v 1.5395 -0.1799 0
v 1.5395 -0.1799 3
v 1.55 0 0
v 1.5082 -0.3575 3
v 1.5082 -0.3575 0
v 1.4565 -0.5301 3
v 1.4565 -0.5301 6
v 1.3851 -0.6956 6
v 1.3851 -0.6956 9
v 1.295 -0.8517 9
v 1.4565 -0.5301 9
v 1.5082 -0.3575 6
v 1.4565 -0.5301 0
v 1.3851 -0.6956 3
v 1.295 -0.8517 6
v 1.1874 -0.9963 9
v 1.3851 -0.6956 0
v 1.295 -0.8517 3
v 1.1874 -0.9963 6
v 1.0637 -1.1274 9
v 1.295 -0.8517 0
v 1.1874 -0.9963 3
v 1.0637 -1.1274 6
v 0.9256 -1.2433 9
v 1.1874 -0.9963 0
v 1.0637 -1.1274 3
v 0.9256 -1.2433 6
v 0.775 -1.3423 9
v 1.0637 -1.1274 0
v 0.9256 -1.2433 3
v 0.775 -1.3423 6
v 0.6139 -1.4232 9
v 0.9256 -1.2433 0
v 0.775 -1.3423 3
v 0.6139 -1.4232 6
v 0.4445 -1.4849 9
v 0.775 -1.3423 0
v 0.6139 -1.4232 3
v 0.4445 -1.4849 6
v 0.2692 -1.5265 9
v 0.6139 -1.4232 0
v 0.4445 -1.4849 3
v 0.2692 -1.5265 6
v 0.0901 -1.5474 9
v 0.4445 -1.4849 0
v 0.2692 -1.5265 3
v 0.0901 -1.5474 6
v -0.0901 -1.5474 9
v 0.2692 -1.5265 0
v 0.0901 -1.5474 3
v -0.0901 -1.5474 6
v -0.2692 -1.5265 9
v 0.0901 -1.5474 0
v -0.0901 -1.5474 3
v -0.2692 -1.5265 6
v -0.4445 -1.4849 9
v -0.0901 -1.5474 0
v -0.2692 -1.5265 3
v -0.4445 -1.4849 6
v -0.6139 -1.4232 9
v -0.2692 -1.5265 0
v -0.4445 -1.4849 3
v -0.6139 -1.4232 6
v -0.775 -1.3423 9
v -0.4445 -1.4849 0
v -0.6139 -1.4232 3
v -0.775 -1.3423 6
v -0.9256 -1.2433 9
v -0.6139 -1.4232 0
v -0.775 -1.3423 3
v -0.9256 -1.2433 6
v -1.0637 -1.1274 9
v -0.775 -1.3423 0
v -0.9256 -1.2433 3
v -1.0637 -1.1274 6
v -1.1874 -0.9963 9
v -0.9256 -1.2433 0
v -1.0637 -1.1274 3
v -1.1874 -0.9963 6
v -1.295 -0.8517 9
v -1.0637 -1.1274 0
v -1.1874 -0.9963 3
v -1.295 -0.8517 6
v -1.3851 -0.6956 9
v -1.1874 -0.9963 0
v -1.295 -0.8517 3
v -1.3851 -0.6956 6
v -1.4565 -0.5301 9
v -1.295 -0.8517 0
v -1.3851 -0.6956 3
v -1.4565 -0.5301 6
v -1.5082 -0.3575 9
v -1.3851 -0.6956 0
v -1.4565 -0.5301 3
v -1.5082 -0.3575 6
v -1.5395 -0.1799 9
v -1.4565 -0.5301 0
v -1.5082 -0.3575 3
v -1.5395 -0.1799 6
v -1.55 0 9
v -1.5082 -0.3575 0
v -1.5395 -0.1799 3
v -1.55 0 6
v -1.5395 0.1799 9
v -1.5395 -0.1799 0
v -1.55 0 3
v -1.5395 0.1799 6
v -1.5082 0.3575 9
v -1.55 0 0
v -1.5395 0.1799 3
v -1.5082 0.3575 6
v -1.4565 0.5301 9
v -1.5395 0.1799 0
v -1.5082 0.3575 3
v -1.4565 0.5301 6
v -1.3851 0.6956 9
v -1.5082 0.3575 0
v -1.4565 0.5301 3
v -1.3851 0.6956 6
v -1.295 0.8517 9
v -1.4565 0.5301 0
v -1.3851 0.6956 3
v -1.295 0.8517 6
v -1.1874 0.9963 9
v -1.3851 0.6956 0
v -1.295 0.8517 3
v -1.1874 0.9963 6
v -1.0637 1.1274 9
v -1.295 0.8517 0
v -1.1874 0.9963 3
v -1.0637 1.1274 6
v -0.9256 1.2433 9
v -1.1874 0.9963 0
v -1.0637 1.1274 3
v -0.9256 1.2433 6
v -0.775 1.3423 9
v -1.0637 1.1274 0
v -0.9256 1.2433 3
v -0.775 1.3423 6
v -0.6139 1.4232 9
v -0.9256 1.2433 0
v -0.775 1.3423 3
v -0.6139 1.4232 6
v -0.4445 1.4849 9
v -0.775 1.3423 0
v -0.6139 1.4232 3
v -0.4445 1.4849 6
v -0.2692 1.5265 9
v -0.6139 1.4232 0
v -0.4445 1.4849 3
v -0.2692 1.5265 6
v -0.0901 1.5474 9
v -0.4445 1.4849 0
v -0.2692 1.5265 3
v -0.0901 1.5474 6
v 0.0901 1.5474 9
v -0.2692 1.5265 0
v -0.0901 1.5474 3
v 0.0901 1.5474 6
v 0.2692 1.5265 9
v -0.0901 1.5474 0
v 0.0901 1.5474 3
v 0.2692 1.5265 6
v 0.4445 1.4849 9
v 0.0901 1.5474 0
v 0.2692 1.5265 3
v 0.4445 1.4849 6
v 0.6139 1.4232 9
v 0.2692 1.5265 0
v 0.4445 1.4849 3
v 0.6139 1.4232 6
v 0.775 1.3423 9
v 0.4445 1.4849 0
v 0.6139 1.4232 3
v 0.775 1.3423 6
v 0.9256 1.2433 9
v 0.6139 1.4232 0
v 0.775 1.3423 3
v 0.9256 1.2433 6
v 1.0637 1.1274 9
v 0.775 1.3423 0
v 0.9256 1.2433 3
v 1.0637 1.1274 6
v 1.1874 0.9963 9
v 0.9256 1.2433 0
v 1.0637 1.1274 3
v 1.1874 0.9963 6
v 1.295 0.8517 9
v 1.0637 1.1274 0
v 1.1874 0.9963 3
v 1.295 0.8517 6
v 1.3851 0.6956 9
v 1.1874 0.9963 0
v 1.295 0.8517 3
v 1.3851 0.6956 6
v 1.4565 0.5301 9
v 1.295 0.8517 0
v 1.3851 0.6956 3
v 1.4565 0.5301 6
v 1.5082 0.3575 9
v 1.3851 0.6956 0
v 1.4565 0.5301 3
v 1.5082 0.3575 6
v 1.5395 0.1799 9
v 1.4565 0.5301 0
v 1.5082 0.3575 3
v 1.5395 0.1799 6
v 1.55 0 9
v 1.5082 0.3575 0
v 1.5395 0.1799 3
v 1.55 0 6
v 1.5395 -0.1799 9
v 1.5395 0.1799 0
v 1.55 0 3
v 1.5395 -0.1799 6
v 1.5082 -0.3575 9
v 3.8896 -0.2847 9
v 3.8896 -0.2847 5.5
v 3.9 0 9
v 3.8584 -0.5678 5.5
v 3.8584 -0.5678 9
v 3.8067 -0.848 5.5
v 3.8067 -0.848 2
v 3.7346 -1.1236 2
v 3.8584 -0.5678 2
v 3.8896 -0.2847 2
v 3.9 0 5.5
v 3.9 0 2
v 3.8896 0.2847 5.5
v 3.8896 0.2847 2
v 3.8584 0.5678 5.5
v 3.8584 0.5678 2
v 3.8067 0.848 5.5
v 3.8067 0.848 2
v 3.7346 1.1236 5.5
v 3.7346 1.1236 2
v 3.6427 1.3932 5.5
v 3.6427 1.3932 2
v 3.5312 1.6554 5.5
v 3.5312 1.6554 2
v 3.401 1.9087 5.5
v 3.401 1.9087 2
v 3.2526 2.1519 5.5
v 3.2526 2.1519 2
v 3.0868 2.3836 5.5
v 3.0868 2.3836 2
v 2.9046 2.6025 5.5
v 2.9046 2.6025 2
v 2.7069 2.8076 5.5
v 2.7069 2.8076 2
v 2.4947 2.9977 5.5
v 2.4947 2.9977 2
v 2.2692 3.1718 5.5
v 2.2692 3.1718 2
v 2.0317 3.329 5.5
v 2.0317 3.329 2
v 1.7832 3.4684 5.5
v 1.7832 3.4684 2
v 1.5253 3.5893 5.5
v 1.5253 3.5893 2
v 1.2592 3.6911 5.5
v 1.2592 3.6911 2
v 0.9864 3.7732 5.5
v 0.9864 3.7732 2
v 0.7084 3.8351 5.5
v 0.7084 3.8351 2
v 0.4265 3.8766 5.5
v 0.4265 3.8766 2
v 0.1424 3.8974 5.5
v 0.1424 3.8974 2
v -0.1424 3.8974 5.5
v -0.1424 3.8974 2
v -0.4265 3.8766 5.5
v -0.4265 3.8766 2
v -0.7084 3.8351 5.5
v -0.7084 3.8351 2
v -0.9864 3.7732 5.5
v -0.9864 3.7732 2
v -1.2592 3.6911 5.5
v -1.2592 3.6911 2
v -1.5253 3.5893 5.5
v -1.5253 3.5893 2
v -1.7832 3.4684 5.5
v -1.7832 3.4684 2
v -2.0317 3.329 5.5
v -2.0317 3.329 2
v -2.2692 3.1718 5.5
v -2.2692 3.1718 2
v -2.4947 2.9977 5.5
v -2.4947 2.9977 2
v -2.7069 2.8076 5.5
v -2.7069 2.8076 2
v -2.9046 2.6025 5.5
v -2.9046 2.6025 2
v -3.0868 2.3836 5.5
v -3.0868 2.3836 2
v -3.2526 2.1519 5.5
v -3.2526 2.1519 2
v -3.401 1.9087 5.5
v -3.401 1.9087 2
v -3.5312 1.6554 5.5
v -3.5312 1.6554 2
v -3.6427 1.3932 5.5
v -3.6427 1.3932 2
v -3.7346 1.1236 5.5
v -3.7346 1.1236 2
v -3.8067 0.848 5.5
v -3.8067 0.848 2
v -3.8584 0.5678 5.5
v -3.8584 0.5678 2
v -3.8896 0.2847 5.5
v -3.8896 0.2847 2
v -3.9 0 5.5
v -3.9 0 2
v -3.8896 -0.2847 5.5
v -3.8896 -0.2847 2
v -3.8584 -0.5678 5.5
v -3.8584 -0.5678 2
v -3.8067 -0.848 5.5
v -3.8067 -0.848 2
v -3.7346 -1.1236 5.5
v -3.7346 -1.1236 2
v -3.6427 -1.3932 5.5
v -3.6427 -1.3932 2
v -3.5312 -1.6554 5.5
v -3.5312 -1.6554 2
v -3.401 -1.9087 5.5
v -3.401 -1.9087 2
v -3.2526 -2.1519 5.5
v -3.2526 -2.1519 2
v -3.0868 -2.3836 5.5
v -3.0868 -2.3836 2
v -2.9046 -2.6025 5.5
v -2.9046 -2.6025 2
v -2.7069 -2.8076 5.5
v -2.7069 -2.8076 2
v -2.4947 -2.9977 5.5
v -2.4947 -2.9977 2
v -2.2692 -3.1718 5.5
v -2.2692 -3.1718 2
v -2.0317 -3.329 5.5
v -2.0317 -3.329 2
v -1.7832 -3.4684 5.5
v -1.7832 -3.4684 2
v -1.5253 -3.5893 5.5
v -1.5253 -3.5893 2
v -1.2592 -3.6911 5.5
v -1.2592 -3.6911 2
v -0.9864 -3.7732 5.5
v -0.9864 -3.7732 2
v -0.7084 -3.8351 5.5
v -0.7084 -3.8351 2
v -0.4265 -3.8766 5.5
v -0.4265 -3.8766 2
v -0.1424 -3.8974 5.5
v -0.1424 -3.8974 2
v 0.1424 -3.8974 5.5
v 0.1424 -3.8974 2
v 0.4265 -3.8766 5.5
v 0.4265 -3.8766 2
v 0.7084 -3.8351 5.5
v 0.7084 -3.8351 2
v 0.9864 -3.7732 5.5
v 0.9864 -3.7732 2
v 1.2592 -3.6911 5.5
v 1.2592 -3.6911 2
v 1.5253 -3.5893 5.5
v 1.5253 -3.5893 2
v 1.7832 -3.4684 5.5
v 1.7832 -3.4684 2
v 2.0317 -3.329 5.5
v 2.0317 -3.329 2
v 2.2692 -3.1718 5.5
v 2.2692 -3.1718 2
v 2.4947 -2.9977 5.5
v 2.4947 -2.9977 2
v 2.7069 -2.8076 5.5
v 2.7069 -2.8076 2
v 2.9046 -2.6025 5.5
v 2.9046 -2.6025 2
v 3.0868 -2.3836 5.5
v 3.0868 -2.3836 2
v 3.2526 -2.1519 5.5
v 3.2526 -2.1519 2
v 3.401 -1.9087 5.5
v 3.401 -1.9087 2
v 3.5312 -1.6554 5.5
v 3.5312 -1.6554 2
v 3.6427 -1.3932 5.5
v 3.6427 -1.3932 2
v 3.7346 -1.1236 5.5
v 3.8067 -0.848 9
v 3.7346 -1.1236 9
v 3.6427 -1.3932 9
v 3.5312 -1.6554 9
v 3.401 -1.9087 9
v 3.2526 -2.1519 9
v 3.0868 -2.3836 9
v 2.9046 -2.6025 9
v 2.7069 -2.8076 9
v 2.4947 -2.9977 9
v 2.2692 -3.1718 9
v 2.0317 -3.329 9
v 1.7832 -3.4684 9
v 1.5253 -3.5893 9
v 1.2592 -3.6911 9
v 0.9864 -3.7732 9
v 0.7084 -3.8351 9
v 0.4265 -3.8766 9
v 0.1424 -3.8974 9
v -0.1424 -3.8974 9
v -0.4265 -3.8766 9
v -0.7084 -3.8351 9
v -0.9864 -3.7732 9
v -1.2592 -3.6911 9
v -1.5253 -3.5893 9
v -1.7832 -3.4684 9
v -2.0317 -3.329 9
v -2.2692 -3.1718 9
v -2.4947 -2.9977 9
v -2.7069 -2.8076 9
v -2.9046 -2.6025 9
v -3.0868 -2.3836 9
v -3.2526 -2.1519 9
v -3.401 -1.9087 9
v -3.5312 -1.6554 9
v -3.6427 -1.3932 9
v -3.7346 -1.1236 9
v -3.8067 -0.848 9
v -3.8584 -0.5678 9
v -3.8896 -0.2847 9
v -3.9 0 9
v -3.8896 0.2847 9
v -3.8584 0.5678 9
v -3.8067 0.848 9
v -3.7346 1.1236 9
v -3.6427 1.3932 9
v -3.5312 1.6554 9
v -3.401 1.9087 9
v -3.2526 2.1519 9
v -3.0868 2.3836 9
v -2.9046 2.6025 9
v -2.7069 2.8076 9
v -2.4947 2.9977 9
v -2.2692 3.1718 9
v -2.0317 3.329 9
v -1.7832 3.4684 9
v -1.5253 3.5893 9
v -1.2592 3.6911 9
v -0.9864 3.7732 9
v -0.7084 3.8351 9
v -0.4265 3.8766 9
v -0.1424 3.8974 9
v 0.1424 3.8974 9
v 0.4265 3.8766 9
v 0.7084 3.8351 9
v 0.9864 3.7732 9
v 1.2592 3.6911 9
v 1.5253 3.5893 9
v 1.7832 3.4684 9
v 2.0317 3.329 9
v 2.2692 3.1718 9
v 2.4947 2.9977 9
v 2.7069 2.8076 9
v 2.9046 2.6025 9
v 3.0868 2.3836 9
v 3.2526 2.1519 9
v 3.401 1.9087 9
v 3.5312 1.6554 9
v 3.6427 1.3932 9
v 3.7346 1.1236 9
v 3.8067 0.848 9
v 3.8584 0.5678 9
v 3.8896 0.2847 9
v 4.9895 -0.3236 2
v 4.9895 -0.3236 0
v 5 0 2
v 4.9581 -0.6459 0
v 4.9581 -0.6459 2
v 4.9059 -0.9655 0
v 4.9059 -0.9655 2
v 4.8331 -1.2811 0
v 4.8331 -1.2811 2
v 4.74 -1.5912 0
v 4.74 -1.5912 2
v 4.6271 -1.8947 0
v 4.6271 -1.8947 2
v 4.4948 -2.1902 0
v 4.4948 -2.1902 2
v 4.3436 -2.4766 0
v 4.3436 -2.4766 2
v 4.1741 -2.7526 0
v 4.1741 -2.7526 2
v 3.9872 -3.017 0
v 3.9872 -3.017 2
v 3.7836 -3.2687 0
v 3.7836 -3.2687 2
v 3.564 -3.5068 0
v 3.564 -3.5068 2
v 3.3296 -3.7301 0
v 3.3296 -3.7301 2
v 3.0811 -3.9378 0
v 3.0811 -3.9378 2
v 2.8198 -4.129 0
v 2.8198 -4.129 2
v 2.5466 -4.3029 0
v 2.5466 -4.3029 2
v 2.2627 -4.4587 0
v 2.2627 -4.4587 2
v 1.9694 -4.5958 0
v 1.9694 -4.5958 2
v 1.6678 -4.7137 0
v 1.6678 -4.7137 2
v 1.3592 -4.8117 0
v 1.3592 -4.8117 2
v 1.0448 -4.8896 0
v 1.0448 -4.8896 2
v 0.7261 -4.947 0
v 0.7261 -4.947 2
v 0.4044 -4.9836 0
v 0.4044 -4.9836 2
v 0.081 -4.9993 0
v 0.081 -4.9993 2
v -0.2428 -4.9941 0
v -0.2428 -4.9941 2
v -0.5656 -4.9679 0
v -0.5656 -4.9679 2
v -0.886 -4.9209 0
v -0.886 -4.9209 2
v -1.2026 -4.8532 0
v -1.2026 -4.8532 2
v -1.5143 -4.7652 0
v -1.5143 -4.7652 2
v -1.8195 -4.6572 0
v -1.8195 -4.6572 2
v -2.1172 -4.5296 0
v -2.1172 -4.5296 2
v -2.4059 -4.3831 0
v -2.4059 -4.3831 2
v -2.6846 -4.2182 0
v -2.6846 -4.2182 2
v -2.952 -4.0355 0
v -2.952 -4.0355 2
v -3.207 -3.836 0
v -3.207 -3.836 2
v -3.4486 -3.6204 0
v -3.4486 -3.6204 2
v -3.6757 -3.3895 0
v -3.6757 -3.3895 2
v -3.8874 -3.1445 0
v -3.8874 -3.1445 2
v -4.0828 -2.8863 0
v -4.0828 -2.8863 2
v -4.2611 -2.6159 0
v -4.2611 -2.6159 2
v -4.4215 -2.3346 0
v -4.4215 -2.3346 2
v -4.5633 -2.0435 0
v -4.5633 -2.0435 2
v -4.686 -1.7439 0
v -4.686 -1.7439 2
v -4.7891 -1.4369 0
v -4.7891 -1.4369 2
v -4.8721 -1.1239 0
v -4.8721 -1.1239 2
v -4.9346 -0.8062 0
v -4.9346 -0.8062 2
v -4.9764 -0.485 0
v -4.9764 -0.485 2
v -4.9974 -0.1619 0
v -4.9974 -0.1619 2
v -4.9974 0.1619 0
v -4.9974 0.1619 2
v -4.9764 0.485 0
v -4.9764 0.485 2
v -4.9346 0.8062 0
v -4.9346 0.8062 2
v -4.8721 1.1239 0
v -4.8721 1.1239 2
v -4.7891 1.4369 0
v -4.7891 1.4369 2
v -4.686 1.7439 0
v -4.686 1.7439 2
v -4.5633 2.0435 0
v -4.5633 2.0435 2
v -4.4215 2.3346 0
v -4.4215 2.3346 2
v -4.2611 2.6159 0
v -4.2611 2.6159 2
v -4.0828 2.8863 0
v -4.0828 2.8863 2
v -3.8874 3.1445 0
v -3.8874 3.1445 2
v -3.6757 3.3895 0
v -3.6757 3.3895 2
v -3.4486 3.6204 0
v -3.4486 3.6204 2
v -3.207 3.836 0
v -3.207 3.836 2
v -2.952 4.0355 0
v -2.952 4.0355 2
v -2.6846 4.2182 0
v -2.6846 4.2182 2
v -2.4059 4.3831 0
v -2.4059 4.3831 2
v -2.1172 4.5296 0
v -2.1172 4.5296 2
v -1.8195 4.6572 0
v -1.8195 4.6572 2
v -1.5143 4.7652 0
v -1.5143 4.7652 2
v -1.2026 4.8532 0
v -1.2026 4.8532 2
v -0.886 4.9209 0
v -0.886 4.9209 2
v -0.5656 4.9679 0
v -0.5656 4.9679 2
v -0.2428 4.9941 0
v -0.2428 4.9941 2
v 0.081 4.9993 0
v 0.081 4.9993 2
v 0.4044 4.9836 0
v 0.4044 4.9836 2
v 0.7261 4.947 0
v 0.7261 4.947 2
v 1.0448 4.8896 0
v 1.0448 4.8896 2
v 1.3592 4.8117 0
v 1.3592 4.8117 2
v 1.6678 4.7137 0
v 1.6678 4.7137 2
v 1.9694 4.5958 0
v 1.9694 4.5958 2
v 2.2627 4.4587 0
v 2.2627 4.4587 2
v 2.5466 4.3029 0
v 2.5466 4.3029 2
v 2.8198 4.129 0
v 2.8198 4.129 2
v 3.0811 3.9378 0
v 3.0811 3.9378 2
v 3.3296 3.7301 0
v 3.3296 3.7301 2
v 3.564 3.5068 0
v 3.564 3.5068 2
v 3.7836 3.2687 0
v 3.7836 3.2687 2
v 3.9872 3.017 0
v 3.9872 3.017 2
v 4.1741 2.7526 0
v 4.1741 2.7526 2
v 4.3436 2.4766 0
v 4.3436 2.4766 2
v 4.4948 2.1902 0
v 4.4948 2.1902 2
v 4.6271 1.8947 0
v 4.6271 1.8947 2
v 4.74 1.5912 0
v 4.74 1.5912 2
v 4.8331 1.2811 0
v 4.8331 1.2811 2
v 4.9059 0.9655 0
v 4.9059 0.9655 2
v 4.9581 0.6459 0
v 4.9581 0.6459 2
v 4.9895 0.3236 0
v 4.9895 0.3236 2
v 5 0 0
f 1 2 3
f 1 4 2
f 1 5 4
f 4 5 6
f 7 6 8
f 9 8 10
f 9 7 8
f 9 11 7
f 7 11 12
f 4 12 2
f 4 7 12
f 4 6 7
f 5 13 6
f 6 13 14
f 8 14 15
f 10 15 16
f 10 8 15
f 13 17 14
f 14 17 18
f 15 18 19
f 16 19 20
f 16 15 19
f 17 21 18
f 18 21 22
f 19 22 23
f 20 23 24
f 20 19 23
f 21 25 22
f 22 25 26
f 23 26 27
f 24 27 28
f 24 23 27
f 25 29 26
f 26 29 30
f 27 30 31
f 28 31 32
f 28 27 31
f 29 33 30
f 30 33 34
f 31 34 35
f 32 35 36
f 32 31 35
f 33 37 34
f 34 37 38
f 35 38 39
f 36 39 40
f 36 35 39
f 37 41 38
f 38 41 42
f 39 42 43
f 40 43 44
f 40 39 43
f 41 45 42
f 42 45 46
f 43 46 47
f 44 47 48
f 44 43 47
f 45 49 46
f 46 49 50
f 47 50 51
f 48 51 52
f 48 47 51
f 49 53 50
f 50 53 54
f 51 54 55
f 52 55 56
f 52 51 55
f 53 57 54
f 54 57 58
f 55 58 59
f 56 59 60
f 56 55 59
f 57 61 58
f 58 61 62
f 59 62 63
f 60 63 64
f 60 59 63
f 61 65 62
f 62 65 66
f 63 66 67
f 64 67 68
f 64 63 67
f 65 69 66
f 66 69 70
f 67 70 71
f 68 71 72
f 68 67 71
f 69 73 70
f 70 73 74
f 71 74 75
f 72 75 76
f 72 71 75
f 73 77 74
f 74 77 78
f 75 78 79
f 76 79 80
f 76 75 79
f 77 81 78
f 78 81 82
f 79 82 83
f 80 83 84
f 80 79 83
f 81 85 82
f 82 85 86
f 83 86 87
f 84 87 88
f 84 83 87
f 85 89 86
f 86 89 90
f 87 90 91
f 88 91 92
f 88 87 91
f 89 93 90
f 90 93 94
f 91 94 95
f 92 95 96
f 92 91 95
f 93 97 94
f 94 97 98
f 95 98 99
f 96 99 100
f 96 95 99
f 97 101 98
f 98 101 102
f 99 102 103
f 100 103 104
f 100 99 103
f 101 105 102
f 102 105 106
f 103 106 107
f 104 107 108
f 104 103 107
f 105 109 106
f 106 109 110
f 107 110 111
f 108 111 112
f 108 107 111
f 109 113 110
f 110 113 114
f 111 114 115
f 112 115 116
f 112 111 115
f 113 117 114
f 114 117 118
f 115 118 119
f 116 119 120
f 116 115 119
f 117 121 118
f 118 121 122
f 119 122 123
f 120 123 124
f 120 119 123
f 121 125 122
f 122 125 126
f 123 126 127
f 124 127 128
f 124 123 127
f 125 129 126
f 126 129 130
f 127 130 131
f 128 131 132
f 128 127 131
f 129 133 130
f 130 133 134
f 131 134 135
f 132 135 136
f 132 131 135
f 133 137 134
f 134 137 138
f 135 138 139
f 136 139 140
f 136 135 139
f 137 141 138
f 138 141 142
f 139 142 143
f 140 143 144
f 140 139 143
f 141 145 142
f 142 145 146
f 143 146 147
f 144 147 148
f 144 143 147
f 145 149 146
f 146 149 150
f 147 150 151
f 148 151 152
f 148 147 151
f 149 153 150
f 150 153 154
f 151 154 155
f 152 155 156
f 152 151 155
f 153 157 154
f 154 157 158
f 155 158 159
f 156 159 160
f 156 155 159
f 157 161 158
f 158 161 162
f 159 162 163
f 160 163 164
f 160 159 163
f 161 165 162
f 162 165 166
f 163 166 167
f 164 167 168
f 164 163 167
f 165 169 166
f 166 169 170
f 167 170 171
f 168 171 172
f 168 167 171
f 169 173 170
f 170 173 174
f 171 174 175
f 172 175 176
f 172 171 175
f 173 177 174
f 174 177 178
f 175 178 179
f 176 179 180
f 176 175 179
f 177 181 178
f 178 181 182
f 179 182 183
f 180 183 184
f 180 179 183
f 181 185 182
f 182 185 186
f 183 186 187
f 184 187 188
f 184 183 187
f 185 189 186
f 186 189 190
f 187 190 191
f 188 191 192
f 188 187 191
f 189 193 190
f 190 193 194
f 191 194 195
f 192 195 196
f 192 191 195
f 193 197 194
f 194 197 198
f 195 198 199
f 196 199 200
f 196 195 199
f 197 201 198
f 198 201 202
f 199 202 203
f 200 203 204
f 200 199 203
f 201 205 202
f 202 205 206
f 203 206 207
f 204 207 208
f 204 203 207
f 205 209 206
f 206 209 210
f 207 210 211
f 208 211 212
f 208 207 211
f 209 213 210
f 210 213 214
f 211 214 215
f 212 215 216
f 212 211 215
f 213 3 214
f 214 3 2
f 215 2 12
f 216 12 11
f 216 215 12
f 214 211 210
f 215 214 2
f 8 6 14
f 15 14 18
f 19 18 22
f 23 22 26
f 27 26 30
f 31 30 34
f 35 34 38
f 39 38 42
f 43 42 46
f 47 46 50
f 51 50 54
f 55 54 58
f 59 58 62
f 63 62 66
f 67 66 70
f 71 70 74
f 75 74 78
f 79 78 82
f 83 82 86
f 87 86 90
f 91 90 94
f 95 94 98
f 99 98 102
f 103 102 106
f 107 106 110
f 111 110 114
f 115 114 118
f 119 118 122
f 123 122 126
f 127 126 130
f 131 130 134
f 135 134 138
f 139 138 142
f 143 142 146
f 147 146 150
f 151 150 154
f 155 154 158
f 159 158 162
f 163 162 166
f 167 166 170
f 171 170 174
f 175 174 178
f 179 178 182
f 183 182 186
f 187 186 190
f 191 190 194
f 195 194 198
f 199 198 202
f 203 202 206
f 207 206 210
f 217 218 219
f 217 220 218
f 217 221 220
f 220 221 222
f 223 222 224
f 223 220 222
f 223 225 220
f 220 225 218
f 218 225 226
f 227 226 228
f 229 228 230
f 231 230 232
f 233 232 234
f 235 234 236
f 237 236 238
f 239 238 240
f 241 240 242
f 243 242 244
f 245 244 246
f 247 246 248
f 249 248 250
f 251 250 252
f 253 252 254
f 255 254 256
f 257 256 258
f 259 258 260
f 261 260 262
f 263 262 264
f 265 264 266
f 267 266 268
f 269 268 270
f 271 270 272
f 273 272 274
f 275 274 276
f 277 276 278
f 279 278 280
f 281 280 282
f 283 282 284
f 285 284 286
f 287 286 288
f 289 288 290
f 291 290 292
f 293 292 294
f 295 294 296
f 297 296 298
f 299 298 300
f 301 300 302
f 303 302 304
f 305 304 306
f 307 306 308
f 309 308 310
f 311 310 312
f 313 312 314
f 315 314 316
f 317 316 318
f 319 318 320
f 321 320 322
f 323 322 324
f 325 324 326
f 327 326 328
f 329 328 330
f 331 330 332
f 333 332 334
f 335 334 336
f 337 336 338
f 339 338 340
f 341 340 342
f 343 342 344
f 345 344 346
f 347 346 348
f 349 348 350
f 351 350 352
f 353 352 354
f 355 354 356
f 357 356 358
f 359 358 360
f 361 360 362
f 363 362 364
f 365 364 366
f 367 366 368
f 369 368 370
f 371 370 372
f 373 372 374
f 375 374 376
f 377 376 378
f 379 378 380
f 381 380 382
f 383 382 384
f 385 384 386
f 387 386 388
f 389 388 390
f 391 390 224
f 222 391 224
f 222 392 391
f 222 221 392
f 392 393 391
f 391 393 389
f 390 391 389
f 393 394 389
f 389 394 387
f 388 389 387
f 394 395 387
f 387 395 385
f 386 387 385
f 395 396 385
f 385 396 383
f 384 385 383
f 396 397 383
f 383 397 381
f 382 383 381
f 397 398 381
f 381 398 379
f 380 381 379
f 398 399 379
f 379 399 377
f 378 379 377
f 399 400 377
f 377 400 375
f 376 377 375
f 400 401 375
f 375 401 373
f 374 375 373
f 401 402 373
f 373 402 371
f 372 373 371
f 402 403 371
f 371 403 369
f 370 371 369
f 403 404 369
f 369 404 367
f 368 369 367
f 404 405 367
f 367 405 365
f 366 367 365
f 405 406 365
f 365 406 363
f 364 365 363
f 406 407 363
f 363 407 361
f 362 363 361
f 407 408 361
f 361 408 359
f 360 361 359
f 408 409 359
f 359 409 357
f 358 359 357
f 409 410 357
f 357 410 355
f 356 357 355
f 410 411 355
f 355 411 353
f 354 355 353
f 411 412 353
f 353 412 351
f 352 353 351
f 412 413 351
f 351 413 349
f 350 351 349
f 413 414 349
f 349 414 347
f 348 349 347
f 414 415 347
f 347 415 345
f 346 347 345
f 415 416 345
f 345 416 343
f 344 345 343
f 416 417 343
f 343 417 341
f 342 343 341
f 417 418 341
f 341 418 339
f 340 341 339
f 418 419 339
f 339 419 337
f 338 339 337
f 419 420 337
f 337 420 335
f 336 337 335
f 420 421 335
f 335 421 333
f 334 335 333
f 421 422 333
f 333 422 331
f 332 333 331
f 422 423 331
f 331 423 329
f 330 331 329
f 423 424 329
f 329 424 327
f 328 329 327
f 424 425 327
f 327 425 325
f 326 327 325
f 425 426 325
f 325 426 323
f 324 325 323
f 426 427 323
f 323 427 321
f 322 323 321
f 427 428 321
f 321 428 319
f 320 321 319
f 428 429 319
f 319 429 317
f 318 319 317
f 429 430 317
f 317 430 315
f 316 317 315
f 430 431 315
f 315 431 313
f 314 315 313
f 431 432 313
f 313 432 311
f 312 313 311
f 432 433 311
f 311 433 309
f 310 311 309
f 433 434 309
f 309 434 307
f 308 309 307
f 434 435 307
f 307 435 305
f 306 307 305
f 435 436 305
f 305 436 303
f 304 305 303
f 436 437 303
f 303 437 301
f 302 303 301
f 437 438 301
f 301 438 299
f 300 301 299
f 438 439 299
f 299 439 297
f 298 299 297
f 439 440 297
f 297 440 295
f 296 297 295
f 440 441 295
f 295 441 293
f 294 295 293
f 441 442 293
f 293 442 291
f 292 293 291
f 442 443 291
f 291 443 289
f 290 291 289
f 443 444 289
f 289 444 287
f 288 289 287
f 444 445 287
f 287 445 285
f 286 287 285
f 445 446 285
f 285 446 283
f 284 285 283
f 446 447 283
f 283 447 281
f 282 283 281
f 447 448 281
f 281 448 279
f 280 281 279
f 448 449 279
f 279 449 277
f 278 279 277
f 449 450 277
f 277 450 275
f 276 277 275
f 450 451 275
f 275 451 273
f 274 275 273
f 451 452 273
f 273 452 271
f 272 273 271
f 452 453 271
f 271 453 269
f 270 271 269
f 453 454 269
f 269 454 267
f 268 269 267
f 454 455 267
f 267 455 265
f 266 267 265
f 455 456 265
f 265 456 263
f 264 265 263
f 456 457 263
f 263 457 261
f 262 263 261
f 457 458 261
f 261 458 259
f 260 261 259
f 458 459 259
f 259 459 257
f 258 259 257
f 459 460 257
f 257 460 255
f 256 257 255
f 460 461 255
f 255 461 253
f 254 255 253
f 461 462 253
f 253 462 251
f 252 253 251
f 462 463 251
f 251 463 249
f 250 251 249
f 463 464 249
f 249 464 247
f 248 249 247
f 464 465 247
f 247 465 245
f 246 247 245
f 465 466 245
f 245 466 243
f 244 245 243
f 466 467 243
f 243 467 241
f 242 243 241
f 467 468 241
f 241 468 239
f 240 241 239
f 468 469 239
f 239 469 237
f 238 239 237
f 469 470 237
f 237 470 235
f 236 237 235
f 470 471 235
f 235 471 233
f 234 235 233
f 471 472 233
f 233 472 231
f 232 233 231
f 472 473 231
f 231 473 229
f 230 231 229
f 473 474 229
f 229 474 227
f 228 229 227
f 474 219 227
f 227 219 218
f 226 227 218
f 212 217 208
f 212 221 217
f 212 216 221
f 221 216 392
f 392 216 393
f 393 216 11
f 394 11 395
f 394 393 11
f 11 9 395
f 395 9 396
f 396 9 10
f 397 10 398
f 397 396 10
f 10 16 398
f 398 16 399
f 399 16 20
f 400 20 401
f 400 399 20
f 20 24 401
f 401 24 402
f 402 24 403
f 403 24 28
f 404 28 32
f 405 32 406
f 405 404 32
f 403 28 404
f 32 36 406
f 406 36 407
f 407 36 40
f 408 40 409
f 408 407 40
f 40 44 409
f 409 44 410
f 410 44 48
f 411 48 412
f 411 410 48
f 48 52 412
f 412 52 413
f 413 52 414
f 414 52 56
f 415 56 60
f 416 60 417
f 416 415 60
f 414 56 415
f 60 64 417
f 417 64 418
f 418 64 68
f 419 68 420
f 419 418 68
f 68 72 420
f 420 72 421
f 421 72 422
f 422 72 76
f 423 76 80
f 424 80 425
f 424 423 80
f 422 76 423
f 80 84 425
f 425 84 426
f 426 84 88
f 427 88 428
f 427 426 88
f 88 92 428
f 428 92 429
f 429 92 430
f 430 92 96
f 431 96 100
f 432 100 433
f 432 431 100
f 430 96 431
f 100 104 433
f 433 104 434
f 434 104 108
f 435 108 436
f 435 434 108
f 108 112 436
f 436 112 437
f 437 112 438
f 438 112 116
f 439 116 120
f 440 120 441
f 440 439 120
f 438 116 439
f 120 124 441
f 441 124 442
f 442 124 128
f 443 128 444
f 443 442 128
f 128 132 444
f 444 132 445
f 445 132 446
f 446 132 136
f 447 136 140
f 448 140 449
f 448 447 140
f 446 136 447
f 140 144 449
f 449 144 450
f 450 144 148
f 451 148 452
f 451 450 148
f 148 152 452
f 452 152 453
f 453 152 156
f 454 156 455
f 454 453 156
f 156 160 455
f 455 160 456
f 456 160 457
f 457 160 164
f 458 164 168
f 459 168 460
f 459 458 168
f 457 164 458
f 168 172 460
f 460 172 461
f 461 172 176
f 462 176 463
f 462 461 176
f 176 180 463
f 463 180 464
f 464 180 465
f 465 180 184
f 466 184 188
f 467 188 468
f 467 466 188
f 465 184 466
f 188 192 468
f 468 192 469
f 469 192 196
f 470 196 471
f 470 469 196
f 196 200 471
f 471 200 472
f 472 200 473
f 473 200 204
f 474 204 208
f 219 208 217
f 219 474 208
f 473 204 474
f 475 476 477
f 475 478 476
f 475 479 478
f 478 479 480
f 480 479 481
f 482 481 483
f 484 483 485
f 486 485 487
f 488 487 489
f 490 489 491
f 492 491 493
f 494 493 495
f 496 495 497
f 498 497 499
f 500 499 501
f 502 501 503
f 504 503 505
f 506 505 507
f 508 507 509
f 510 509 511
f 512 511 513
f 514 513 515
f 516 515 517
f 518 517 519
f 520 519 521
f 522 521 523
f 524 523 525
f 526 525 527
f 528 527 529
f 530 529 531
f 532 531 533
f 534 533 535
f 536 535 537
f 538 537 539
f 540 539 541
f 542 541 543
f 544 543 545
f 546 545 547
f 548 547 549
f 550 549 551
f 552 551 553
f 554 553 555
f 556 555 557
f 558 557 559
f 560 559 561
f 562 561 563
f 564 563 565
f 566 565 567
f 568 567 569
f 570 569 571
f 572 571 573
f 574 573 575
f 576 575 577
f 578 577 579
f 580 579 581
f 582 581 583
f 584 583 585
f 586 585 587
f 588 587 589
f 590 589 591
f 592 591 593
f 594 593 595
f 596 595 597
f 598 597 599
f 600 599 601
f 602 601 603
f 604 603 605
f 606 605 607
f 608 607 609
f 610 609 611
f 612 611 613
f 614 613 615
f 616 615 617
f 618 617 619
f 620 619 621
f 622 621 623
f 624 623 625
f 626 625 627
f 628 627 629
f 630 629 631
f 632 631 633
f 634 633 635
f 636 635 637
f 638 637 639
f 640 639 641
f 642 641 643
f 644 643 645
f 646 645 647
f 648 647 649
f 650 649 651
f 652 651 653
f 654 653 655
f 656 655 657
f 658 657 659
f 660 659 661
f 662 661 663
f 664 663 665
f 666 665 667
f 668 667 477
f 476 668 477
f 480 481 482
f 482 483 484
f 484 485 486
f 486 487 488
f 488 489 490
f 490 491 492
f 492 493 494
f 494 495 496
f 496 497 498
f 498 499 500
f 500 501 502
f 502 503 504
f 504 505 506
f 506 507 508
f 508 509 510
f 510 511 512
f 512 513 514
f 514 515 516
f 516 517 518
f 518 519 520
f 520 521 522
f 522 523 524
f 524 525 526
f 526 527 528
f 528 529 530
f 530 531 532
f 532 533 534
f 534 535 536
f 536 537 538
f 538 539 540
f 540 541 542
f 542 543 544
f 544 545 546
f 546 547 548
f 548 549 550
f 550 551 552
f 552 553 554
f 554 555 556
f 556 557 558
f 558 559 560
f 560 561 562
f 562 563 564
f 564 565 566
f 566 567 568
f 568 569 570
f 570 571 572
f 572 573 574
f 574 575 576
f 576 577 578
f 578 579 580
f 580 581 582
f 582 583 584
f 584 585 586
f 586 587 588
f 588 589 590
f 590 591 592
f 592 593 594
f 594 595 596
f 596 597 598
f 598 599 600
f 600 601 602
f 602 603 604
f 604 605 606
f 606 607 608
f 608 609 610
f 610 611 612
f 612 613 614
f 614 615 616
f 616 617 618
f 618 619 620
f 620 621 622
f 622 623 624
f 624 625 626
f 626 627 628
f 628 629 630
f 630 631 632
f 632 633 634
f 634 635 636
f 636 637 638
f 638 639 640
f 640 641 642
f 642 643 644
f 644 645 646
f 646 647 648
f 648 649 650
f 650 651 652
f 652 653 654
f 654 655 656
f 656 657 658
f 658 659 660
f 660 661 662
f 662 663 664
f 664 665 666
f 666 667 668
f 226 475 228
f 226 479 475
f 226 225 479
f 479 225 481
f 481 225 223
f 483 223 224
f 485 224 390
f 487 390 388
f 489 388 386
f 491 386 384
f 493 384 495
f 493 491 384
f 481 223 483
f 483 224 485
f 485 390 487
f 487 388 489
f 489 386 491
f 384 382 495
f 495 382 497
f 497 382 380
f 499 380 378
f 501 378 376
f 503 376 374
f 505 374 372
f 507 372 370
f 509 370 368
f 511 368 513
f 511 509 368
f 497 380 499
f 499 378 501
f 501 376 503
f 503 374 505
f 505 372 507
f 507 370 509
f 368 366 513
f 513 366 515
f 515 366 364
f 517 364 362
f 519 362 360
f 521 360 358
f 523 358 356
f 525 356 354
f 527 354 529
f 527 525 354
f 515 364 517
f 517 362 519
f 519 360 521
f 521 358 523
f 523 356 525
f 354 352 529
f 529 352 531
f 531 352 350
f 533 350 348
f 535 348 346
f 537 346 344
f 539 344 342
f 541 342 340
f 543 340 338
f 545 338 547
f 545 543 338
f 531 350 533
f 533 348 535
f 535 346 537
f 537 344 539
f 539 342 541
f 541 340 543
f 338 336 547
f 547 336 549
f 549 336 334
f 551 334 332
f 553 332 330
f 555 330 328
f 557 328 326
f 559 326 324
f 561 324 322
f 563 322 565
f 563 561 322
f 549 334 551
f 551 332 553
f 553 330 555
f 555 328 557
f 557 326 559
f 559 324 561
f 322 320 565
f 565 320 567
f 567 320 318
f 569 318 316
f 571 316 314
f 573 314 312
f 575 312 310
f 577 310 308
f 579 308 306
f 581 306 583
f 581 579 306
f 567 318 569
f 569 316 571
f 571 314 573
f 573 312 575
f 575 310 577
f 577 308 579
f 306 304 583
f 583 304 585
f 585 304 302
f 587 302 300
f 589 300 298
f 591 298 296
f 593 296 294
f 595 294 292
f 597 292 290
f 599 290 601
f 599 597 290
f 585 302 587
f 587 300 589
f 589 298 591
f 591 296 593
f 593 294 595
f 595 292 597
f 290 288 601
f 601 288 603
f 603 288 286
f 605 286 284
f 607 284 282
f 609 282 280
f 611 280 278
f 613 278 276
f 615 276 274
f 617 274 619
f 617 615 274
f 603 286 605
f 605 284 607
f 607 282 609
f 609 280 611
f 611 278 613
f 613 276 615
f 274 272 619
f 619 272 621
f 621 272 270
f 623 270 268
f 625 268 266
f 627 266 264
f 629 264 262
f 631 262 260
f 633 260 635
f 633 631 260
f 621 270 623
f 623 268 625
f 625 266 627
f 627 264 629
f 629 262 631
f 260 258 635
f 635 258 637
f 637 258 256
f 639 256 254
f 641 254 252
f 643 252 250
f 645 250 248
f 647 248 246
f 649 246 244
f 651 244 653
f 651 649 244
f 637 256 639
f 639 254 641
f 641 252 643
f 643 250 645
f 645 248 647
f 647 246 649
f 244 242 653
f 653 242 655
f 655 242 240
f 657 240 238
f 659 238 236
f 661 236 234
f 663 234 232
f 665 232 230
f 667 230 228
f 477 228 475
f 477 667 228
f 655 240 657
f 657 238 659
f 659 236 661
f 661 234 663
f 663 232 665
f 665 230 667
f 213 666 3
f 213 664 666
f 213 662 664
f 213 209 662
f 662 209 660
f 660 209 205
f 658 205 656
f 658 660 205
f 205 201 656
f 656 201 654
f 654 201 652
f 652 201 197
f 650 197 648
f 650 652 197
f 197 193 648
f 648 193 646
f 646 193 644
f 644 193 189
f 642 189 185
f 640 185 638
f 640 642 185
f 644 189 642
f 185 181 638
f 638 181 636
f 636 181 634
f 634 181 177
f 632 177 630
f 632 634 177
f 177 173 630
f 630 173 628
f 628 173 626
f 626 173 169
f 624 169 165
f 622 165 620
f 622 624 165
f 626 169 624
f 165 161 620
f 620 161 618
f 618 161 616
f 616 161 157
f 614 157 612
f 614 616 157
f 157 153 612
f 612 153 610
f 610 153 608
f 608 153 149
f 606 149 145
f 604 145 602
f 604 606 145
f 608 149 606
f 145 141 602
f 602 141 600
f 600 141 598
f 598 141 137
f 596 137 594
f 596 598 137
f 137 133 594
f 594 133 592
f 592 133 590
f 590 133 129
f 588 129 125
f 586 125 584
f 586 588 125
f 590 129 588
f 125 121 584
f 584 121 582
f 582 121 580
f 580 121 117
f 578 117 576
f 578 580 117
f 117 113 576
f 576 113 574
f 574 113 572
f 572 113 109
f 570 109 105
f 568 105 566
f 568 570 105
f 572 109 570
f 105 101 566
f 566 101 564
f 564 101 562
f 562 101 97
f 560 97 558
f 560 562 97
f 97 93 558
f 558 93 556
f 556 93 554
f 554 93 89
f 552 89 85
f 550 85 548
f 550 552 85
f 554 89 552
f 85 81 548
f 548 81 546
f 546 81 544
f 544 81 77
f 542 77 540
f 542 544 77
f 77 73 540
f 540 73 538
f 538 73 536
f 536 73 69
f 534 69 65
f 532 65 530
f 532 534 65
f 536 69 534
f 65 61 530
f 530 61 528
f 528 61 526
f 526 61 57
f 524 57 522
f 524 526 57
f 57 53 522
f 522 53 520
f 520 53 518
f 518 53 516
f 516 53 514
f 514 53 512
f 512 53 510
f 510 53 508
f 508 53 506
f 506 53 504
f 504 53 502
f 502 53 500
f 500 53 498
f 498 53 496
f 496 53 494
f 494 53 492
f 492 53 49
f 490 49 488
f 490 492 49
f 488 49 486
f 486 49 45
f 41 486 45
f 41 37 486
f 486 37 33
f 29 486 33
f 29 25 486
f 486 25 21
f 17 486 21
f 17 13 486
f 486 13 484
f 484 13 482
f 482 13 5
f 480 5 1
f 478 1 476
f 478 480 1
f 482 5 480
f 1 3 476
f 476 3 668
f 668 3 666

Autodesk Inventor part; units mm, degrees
ref_plane "YZ Plane" through (0, 0, 0) normal (1, 0, 0) x (0, 1, 0)
ref_plane "XZ Plane" through (0, 0, 0) normal (0, 1, 0) x (-1, 0, 0)
ref_plane "XY Plane" through (0, 0, 0) normal (0, 0, 1) x (1, 0, 0)
sketch "Sketch1" plane through (0, 0, 0) normal (0, 0, 1) x (1, 0, 0)
  circle A0 centre (0, 0) radius 5
  dimension "d0" = 10
extrude "Extrusion1" add sketch "Sketch1" along normal blind 2
sketch "Sketch2" plane through (0, 0, 2) normal (0, 0, 1) x (1, 0, 0)
  circle A0 centre (0, 0) radius 5 projected
  circle A1 centre (0, 0) radius 3.9
  dimension "d4" = 7.8
extrude "Extrusion2" add sketch "Sketch2" along normal blind 7 contours A1
sketch "Sketch3" plane through (0, 0, 9) normal (0, 0, 1) x (1, 0, 0)
  circle A0 centre (0, 0) radius 3.9 projected
  circle A1 centre (0, 0) radius 1.55
  dimension "d9" = 3.1
extrude "Extrusion3" cut sketch "Sketch3" against normal through all contours A1
properties part number "z idler insert"
